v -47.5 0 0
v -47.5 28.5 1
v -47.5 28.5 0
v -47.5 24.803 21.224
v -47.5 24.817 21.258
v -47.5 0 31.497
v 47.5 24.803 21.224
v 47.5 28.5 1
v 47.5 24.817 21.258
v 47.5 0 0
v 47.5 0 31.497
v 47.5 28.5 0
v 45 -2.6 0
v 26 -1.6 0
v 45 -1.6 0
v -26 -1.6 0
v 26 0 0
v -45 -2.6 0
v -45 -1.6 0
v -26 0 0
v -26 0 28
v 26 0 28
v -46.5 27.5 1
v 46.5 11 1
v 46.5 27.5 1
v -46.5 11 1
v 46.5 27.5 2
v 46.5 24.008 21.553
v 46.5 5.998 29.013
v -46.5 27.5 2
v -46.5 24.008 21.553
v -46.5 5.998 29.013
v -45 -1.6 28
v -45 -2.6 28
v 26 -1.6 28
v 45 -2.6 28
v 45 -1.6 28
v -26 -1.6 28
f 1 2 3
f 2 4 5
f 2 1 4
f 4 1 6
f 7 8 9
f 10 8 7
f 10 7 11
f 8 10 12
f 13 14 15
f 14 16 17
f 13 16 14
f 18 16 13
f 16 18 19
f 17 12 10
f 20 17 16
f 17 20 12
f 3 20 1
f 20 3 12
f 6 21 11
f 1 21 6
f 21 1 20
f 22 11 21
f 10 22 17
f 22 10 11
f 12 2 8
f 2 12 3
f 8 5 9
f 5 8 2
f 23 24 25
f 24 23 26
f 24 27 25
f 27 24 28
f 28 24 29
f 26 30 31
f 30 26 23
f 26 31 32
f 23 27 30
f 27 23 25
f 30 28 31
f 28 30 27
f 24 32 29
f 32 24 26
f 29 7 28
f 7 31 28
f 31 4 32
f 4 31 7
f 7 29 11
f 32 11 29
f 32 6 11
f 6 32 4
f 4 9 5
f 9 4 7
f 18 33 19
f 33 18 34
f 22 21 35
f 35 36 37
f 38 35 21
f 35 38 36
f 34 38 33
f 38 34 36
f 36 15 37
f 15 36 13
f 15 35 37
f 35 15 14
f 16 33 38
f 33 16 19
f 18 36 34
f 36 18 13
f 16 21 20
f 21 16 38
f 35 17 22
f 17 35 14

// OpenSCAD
// Wall Mounted Multi Card Holder Extention
// By Brian Khuu 2022-04-22
// RevA : This slots into the single card holder to allow for holding on to multiple cards in case you want to store a few extra cards not on show

print_layer_height = 0.2; //< This is the value you used when printing the main holder. This will indicate the amount of gap needed for the mounting slot

// Businesscard
// Default values based on https://www.mbe.com.au/what-is-the-standard-business-card-size-in-australia/
businesscard_width = 93; // 90mm but some in real life are more like 91mm (Plus 0.5 tol )
businesscard_height = 56; // 55mm (add 0.5mm tol)
businesscard_thickness = 1.5; // 0.25mm for thin paper cards. 0.8mm for thick plastic cards. We need to add extra thickness to account for layer droop

// Holder
wall_spacing = 2;
wall_card_grip = 20;

// Calc
wall_base = print_layer_height*3+0.1;
wall_top = print_layer_height*3+0.1;
wall_height = wall_base + businesscard_thickness + wall_top*2;



// Fake Businesscard To Grip Single Card Slot
wall_mount_card_thickness = 1.0;
wall_mount_card_width = 90.0;
wall_mount_spacing = print_layer_height*3 + 1.0;
translate([-wall_mount_card_width/2, -wall_mount_card_thickness-wall_mount_spacing, 0])
    cube([wall_mount_card_width, wall_mount_card_thickness, businesscard_height/2]);
translate([-(businesscard_width-wall_card_grip*2-1.0)/2, -wall_mount_spacing, 0])
    cube([(businesscard_width-wall_card_grip*2-1.0), wall_mount_spacing, businesscard_height/2]); 


// Main Holder
holder_thickness = 1.0;
holder_slot_depth = businesscard_thickness*11; // 10 business cards (1 businesscard tolderance)
holder_slot_shift = 10;
difference()
{
    // Bulk
    hull()
    {
        translate([-(businesscard_width+holder_thickness*2)/2, 0, businesscard_height-holder_thickness])
            cube([(businesscard_width+holder_thickness*2), holder_slot_depth+holder_thickness*2, 1]);
        translate([-(businesscard_width+holder_thickness*2)/2, 0, 0])
            cube([(businesscard_width+holder_thickness*2), holder_slot_depth+holder_thickness*2+holder_slot_shift, 1]);
    }

    // Card
    hull()
    {
        translate([-(businesscard_width)/2, holder_thickness, holder_thickness+businesscard_height])
            cube([(businesscard_width), holder_slot_depth, 1]);
        translate([-(businesscard_width)/2, holder_thickness+holder_slot_shift, holder_thickness])
            cube([(businesscard_width), holder_slot_depth, 1]);
    }
    
    // Slot Cut
    hull()
    {
        translate([0, (holder_slot_depth+holder_thickness*3)/2, businesscard_height/2])
            rotate([-45/2,0,0])
            cube([(businesscard_width*2), holder_slot_depth*2, 1], center=true);
        translate([0, (holder_slot_depth+holder_thickness*3)/2, businesscard_height])
            rotate([0,0,0])
            cube([(businesscard_width*2), holder_slot_depth*2, 1], center=true);
    }    
}
